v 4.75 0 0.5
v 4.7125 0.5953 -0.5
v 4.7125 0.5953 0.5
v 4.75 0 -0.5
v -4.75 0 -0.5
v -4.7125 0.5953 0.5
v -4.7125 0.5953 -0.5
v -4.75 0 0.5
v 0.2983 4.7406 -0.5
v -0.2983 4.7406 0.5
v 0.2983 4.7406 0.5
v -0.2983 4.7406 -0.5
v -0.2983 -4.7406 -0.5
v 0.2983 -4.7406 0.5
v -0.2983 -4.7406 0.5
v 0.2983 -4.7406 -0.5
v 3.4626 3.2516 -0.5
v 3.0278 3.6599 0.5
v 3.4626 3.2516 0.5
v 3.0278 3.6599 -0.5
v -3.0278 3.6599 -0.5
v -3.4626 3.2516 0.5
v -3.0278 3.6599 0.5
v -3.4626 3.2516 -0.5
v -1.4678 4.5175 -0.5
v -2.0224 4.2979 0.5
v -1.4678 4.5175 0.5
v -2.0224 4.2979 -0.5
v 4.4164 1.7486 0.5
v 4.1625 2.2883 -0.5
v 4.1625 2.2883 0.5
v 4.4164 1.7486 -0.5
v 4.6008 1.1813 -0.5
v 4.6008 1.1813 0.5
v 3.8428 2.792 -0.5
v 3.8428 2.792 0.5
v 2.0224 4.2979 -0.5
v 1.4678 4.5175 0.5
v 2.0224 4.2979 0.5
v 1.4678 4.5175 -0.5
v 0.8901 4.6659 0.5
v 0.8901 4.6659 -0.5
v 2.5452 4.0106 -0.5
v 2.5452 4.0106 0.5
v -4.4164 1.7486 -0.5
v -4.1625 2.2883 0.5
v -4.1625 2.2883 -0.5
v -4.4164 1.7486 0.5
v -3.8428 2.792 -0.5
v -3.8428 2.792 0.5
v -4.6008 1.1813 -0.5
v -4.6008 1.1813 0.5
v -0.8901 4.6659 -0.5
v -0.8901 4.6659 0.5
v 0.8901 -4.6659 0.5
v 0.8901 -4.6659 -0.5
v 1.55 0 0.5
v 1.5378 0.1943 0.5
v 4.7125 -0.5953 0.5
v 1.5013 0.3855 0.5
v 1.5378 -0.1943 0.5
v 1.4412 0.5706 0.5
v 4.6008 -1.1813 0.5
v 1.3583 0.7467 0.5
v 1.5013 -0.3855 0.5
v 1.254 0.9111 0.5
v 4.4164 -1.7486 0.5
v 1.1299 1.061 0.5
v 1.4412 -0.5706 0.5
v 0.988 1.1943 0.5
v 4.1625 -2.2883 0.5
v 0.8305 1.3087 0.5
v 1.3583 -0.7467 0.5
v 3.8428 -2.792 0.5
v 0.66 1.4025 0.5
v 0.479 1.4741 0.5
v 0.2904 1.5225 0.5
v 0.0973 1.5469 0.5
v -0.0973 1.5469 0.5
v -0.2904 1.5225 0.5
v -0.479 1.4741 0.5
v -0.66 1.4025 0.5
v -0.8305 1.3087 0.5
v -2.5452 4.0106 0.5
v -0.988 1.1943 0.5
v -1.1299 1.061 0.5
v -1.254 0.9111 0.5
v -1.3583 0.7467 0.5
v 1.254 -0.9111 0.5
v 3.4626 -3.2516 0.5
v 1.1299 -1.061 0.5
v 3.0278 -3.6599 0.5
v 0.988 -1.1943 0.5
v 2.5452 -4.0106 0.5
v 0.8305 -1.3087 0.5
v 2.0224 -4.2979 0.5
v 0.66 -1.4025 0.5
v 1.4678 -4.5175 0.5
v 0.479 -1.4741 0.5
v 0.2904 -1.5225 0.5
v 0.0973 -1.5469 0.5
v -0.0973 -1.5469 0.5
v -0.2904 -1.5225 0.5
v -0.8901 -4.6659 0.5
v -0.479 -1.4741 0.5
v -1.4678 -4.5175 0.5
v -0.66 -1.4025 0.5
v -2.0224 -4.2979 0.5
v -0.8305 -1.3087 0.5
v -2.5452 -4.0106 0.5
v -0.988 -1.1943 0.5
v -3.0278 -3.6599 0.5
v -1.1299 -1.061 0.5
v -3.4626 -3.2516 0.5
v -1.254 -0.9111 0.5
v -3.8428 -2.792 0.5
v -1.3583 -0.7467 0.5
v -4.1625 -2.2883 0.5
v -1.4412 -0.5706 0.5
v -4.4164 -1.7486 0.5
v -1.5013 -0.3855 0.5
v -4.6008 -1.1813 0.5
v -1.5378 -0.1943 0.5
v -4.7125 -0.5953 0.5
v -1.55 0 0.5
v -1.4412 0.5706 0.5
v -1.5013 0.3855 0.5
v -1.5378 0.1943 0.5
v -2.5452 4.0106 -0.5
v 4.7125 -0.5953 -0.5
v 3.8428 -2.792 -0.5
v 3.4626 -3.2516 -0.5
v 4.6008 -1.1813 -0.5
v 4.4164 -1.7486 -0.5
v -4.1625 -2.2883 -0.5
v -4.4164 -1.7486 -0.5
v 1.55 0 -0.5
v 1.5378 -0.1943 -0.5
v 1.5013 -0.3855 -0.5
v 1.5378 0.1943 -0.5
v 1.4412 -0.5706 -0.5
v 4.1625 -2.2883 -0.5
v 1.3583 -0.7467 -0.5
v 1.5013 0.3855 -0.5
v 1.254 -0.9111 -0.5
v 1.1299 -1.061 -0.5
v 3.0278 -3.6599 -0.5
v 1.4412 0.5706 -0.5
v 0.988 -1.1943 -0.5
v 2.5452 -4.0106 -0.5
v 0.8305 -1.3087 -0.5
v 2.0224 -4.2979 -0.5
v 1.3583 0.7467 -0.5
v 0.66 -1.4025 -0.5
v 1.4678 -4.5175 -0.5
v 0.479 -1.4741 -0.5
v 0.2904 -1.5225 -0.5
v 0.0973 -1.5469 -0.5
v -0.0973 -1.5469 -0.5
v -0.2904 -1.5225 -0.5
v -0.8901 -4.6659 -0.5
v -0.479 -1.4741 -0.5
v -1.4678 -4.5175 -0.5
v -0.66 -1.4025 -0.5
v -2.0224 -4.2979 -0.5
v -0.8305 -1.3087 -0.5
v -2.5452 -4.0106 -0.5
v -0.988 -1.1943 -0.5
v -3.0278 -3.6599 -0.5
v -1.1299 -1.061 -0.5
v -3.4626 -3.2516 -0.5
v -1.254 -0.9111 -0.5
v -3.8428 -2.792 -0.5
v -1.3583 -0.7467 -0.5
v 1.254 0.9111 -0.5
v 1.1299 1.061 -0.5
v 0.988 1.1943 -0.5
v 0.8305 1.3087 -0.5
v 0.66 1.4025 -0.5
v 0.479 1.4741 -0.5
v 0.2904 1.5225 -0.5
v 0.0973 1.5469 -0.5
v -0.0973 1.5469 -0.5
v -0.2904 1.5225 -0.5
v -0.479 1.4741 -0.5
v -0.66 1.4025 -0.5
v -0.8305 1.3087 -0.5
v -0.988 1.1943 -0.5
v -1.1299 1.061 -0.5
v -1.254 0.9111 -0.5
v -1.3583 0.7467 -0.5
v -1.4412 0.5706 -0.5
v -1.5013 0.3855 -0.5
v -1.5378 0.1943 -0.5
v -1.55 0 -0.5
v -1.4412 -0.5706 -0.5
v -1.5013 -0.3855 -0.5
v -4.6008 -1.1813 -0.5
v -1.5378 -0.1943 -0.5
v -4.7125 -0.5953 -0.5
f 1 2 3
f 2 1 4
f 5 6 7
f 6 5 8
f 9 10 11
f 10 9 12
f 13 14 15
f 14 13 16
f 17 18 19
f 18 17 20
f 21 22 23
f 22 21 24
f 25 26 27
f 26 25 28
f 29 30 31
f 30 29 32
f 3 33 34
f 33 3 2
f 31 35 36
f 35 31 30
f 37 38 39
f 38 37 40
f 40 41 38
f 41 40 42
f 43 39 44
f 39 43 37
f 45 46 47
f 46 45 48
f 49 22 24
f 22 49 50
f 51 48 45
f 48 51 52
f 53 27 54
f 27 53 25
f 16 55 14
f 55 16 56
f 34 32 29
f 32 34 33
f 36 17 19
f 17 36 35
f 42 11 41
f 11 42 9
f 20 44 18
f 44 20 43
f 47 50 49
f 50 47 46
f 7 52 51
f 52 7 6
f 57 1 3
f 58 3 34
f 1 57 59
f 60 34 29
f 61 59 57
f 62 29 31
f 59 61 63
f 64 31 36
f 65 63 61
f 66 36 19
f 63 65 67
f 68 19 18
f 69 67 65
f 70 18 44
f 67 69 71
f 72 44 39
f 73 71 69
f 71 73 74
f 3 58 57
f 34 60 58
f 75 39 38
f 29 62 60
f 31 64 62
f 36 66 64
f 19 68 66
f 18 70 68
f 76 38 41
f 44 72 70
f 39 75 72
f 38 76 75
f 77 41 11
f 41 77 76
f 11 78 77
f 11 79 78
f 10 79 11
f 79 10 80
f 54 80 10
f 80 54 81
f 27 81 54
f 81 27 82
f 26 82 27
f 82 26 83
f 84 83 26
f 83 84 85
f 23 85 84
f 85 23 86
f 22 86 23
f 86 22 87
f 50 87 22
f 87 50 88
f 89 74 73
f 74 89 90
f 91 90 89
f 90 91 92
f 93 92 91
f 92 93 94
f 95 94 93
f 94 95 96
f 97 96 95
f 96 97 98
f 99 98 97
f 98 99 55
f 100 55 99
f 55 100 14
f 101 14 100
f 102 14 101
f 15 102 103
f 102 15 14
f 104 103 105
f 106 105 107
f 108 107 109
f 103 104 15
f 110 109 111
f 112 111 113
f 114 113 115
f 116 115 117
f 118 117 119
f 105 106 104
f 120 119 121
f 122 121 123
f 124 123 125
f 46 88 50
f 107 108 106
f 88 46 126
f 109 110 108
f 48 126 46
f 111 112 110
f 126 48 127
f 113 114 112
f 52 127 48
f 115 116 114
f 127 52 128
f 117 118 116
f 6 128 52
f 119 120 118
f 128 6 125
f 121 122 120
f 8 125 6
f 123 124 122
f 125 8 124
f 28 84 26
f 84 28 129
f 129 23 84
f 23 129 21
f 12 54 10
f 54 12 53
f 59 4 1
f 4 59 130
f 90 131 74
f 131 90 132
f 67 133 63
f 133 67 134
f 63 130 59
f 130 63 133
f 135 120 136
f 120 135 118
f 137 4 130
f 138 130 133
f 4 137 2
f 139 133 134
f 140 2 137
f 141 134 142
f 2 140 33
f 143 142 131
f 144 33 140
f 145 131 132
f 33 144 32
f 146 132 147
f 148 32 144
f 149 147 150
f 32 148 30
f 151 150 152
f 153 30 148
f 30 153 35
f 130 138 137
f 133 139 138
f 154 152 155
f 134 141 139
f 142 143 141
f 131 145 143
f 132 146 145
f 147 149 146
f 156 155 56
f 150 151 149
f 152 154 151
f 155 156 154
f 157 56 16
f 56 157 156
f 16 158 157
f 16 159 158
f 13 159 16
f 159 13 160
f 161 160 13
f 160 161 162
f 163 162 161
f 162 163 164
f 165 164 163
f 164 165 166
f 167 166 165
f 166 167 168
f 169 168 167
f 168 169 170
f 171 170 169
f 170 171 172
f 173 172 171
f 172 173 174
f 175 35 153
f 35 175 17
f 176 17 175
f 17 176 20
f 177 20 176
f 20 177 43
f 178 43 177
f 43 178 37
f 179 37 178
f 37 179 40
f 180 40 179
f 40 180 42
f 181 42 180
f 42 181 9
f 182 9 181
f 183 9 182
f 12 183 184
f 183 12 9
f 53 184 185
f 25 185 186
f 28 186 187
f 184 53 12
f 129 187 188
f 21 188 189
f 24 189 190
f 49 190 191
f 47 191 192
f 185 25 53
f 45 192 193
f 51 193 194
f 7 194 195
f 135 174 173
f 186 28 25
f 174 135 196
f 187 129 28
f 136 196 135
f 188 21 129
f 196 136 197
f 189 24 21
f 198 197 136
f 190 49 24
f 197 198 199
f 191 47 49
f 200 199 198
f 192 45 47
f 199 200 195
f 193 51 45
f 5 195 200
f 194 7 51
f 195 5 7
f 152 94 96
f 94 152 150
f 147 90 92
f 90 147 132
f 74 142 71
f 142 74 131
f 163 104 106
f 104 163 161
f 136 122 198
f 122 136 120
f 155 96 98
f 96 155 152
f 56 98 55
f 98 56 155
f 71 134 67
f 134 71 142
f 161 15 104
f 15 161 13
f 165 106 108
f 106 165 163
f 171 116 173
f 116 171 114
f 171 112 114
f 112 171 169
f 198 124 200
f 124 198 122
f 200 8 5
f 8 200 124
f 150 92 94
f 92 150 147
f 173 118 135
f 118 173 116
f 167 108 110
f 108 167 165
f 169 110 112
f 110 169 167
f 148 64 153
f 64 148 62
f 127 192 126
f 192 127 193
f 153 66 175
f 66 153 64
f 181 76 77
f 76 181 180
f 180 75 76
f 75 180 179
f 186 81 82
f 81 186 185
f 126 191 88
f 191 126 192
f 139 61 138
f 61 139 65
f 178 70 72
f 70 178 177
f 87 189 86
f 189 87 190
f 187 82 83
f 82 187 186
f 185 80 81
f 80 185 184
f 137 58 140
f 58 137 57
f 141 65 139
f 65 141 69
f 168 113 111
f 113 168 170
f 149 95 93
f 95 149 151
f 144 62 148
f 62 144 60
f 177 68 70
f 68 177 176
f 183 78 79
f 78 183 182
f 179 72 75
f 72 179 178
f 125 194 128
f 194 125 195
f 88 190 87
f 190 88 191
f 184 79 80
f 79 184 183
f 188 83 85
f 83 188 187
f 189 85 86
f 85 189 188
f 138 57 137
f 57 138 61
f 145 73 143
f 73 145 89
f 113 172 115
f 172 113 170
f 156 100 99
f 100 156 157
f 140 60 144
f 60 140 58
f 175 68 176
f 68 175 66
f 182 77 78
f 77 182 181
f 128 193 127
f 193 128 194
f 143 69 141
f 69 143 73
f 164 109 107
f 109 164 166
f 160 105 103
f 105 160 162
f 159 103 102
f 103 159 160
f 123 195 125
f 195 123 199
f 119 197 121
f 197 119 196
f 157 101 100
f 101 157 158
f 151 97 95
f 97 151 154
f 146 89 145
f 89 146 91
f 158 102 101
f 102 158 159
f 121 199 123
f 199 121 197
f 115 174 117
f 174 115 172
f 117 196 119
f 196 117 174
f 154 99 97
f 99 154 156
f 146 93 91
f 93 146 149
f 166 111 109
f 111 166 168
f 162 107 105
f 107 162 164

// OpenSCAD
$fn = 50;


difference() {
	union() {
		translate(v = [0, 0, -0.5000000000]) {
			cylinder(h = 1, r = 4.7500000000);
		}
	}
	union() {
		translate(v = [0, 0, -100.0000000000]) {
			cylinder(h = 200, r = 1.5500000000);
		}
	}
}
